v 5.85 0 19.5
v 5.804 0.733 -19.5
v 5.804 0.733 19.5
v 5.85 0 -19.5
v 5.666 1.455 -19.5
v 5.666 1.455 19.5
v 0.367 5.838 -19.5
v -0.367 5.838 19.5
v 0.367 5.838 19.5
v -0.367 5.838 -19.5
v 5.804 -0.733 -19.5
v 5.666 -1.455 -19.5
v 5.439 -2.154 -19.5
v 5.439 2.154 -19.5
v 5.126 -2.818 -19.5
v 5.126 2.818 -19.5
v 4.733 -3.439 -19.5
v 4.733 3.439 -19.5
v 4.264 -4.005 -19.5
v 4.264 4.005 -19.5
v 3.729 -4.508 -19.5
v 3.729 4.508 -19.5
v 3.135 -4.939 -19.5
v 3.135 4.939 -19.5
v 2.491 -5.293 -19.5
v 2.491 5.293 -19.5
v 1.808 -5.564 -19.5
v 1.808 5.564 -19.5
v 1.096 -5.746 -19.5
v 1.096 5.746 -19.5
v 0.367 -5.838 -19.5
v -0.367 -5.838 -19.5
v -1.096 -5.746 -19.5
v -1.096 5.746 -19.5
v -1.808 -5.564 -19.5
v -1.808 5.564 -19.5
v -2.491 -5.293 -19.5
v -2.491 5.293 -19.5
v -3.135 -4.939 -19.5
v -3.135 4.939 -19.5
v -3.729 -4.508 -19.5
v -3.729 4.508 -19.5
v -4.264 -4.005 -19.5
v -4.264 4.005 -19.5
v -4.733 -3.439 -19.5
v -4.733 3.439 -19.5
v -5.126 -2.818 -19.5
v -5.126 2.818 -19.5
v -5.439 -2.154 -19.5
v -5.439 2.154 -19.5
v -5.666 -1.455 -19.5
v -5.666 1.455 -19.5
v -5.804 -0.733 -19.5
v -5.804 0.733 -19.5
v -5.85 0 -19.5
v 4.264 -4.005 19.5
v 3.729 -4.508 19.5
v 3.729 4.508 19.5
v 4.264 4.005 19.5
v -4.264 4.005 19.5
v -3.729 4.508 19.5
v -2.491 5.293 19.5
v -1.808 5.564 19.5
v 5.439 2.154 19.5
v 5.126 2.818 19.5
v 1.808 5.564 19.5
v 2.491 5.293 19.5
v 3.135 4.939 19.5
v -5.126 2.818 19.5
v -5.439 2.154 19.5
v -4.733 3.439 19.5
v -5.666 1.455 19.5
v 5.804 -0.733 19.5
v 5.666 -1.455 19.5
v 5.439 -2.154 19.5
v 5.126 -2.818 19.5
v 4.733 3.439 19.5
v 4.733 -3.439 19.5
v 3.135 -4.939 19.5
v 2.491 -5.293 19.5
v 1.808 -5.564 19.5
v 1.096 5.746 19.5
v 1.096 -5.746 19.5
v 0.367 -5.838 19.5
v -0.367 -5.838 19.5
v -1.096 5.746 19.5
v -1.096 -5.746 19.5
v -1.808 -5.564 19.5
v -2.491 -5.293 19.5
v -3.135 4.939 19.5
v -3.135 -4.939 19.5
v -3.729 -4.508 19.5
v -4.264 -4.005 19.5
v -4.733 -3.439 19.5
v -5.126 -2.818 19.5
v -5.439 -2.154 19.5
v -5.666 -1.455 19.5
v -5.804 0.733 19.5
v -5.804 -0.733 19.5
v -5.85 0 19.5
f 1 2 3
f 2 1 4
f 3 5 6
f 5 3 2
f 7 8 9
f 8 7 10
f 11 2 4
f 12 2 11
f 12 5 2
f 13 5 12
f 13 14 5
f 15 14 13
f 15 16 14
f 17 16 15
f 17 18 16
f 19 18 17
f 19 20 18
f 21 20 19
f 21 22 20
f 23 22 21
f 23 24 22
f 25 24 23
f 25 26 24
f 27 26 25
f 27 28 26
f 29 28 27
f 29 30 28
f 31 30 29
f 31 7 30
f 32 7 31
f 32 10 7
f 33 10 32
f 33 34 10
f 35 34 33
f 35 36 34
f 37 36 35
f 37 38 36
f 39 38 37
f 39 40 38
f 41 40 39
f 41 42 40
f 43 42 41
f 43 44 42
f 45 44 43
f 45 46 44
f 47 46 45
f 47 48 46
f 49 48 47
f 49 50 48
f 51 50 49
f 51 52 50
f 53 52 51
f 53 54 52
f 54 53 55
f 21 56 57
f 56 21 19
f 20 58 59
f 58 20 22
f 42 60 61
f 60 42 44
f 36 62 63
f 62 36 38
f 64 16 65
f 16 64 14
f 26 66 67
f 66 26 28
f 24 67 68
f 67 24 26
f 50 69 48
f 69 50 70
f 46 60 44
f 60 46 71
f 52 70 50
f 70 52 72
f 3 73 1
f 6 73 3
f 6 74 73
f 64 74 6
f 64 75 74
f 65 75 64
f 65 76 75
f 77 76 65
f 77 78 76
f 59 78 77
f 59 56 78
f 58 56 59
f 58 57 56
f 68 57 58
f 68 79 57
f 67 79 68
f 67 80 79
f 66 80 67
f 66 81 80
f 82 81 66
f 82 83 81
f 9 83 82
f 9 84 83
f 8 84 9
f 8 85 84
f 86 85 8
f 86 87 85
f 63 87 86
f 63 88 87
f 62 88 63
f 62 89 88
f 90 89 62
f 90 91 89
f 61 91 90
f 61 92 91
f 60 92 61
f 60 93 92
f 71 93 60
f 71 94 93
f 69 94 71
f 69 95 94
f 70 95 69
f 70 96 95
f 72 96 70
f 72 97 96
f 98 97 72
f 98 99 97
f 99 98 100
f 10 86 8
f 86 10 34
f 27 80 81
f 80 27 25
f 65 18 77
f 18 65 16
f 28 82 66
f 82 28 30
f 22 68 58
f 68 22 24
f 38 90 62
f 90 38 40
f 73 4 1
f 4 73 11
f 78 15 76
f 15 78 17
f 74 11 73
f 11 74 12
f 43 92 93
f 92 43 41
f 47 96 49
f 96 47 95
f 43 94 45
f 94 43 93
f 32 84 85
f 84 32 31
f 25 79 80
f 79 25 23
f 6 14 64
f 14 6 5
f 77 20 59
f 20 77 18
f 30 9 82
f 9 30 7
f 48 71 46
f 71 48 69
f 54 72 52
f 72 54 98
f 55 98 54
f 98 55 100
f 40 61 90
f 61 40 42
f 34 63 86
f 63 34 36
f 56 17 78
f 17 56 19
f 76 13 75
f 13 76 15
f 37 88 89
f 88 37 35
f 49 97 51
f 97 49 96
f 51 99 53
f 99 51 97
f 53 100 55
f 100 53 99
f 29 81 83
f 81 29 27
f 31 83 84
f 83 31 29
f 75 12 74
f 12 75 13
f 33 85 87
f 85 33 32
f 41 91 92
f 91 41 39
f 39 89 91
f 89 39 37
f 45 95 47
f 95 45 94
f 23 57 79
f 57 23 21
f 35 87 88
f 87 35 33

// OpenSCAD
$fn = 50;


difference() {
	union() {
		translate(v = [0, 0, -19.5000000000]) {
			cylinder(h = 39, r = 5.8500000000);
		}
	}
	union() {
		translate(v = [0, 0, -100.0000000000]) {
			cylinder(h = 200, r = 0);
		}
	}
}
